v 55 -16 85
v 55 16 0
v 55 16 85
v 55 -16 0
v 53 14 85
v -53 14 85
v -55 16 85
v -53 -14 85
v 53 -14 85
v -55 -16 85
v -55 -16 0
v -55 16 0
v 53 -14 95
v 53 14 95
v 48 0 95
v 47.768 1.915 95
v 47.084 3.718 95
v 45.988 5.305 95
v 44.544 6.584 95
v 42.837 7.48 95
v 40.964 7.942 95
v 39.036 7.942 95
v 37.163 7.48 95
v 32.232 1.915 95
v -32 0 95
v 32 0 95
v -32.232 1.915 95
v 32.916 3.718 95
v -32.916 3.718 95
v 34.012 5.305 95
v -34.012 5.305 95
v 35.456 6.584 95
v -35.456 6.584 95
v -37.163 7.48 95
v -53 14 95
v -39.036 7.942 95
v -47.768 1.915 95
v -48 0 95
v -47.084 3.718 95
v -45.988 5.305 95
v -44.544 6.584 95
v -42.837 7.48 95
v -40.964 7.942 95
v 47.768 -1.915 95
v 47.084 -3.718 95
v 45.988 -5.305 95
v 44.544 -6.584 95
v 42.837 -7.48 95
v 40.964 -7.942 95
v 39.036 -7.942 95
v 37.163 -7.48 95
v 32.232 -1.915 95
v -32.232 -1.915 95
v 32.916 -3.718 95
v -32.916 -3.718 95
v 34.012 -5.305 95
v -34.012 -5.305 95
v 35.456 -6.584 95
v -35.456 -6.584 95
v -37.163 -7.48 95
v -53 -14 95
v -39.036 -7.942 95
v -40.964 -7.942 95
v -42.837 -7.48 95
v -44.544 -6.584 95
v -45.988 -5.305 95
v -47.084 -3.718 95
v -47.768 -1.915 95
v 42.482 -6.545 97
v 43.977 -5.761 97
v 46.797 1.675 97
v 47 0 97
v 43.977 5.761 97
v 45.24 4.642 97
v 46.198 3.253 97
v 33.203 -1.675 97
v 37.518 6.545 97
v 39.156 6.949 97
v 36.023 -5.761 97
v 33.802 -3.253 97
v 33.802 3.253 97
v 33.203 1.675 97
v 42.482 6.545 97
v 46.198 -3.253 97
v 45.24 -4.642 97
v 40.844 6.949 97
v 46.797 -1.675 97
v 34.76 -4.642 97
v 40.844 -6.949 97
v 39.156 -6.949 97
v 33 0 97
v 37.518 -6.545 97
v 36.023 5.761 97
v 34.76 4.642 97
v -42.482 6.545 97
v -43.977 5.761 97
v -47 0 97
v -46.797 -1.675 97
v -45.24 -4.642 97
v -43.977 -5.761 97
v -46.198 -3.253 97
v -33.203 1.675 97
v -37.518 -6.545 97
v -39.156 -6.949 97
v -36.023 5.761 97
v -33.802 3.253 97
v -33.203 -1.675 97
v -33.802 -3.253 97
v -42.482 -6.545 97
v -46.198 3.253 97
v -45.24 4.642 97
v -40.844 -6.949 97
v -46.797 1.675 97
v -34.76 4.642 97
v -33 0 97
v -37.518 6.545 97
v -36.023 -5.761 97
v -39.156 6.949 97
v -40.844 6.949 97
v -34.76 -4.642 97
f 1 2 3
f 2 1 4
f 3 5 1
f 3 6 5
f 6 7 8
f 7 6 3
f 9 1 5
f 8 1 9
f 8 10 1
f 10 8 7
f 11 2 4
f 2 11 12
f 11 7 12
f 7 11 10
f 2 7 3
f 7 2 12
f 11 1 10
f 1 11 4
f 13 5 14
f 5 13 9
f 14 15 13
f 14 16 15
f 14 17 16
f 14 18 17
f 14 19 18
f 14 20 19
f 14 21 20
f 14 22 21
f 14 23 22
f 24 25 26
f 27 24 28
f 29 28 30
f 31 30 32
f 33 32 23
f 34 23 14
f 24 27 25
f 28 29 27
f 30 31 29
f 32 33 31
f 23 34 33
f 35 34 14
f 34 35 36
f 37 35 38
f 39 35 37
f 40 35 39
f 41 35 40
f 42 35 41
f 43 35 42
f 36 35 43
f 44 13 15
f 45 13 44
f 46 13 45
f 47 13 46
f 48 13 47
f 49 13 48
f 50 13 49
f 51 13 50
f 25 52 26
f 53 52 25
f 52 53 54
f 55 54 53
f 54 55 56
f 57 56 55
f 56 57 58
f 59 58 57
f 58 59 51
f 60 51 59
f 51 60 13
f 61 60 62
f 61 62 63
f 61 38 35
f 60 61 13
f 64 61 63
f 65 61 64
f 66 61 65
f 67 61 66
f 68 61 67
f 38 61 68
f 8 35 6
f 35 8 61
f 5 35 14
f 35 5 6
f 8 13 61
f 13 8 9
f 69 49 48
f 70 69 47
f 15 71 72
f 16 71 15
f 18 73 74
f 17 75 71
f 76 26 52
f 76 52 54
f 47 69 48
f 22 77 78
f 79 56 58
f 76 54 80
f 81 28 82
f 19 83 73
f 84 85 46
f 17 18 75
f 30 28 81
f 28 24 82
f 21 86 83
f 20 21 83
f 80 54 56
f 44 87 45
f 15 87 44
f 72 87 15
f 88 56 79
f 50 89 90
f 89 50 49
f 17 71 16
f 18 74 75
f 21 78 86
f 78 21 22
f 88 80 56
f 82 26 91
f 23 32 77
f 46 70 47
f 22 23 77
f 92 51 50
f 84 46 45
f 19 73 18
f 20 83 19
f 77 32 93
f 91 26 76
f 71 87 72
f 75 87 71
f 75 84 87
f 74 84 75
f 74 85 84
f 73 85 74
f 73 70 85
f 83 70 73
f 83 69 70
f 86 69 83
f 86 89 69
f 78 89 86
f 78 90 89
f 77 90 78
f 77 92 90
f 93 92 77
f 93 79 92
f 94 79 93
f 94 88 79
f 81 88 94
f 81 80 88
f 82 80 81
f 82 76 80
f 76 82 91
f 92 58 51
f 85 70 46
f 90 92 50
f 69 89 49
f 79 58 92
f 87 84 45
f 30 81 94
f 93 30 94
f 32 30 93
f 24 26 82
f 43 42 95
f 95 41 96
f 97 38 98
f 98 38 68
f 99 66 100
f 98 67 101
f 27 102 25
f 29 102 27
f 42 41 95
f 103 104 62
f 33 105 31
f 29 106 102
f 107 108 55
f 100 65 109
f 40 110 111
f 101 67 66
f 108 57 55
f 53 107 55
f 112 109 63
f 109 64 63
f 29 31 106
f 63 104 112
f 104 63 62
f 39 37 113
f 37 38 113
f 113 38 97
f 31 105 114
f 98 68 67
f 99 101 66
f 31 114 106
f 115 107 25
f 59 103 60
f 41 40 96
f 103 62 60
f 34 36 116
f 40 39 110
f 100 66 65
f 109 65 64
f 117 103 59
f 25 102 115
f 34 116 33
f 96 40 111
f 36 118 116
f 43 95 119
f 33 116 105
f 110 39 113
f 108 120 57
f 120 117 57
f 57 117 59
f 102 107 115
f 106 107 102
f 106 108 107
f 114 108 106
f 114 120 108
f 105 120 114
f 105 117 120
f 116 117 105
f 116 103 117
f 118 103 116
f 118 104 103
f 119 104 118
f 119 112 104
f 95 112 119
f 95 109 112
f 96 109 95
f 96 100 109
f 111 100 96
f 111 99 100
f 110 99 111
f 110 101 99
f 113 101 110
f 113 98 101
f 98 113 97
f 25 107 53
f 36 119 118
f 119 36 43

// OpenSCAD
// file: ../utils/copies.scad
/*
  author: Christopher O'Brien  <obriencj@gmail.com>
  license: GPL v3
*/


module copy_mirror(x=1, y=0, z=0) {
     children();
     mirror([x, y, z]) children();
}


module copy_translate(x=0, y=0, z=0, copies=1) {
     for(i = [0:copies]) {
	  translate([x * i, y * i, z * i]) {
	       children();
	  };
     };
}


module copy_rotate(x=0, y=0, z=0, copies=1) {
     for(i = [0:copies]) {
	  rotate([x * i, y * i, z * i]) {
	       children();
	  };
     };
}


// The end.
// main file
/*
  author: Christopher O'Brien  <obriencj@gmail.com>
  license: GPL v.3
*/


use <../utils/copies.scad>;


module AG_401() {
     // rough dimensions of an antigravity 401 (4-cell) battery
     // Length = 110mm, Width = 32mm, Height = 95mm

     bat_length = 110;
     bat_width = 32;
     bat_height = 95;

     // the AG-401 has a top portion which is slightly smaller than
     // the main body of the battery.

     // todo: these numbers are just estimates
     cap_delta = 2;
     cap_height = 10;

     color("Gray") {
	  translate([bat_length / -2, bat_width / -2, 0]) {
	       cube([bat_length, bat_width, bat_height - cap_height]);

	       translate([cap_delta, cap_delta, bat_height - cap_height]) {
		    cube([bat_length - (cap_delta * 2),
			  bat_width - (cap_delta * 2),
			  cap_height]);
	       };
	  };
     };

     // todo: the terminal positions and sizes are estimations
     color("Gold") {
	  copy_rotate(z=180) {
	       translate([40, 0, bat_height])
		    cylinder(2, 8, 7);
	  };
     };
}


AG_401();


// The end.
